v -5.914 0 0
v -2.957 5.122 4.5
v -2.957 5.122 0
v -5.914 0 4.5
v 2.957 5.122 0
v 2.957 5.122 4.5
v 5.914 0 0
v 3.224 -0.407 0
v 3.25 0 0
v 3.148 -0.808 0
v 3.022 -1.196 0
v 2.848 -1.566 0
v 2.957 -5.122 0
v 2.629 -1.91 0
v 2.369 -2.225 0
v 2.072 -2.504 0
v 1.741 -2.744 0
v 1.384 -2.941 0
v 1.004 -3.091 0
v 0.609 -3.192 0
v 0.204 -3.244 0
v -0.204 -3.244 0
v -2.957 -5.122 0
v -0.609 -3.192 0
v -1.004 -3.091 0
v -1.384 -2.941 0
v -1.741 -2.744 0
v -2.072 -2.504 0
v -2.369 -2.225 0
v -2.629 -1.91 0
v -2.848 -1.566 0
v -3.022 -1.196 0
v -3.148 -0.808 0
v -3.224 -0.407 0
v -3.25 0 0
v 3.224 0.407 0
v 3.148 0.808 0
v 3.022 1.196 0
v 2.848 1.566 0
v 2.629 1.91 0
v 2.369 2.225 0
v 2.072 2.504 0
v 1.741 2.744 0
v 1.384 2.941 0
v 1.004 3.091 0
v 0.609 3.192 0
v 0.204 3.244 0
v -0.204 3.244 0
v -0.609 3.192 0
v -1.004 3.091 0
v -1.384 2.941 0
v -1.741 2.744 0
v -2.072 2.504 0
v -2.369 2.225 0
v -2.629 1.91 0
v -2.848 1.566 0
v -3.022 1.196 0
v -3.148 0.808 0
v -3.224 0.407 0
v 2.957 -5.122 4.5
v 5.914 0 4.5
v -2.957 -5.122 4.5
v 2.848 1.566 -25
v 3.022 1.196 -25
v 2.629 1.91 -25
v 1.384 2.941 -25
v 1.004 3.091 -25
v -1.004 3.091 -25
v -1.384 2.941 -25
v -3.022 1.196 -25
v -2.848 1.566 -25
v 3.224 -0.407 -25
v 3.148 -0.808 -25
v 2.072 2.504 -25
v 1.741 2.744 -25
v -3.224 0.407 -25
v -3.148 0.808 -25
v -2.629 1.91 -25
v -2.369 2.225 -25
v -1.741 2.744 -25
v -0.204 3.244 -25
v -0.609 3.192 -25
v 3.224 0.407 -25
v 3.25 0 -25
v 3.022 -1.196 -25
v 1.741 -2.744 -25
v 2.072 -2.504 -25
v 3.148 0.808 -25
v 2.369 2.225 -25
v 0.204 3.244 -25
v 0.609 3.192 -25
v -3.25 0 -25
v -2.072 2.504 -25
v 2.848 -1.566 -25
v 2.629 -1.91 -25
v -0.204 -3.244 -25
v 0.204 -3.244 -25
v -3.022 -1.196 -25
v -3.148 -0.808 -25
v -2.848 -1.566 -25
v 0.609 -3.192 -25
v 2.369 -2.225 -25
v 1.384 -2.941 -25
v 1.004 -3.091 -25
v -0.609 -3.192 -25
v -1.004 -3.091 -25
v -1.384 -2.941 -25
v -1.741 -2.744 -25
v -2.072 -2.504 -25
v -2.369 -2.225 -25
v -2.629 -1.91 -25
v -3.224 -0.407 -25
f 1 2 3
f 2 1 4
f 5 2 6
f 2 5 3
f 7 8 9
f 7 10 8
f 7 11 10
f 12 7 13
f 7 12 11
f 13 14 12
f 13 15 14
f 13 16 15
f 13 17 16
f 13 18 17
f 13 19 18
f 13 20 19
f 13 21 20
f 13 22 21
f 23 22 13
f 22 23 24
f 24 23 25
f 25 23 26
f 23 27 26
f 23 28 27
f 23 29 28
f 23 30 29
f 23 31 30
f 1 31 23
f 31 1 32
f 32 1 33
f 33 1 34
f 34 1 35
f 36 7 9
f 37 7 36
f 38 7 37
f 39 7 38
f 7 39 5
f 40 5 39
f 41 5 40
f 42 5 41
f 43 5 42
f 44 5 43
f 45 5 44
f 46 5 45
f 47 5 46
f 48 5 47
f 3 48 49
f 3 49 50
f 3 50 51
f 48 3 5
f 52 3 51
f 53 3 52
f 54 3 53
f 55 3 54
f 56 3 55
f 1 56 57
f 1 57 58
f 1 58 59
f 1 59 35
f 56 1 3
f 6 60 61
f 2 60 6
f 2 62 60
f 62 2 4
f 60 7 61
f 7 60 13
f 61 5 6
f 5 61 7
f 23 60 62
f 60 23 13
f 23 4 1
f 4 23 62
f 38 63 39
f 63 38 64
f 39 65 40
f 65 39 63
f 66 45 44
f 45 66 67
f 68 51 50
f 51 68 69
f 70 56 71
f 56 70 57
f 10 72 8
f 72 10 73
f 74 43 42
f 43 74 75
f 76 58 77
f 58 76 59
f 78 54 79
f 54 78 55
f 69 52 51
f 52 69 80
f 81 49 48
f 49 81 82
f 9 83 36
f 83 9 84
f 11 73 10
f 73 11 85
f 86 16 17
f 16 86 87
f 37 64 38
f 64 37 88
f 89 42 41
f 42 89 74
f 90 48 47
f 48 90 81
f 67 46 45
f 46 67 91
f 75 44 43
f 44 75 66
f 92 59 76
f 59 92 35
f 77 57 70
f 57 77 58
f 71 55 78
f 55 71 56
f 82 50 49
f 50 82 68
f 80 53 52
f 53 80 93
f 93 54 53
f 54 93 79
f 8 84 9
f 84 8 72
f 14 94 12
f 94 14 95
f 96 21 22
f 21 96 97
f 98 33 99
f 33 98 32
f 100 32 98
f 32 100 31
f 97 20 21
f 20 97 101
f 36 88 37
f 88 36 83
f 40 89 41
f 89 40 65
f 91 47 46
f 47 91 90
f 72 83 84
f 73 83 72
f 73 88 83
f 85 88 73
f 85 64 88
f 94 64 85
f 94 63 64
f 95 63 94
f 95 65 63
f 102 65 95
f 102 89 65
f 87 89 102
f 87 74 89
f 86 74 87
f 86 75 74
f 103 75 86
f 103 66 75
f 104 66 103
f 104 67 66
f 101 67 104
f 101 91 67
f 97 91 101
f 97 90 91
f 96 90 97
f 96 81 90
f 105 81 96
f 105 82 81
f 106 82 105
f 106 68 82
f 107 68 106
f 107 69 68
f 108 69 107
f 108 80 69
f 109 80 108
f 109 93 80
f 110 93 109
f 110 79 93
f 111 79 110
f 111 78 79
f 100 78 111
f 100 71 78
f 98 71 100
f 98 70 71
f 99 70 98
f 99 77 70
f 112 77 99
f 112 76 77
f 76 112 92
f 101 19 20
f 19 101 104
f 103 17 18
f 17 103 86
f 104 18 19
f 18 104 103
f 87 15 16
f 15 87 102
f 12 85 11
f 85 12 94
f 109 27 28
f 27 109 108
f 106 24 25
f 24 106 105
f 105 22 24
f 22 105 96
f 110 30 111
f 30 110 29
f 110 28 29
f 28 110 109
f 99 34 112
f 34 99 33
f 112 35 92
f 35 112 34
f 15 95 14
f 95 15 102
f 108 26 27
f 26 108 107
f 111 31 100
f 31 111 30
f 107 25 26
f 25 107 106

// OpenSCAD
$fn = 50;


difference() {
	union() {
		translate(v = [0, 0, 0]) {
			rotate(a = [0, 0, 0]) {
				translate(v = [0, 0, 0]) {
					rotate(a = [0, 0, 0]) {
						linear_extrude(height = 4.5000000000) {
							polygon(points = [[5.9142500000, 0.0000000000], [2.9571250000, 5.1218907443], [-2.9571250000, 5.1218907443], [-5.9142500000, 0.0000000000], [-2.9571250000, -5.1218907443], [2.9571250000, -5.1218907443]]);
						}
					}
				}
			}
		}
		translate(v = [0, 0, -25]) {
			rotate(a = [0, 0, 0]) {
				cylinder(h = 25, r = 3.2500000000);
			}
		}
	}
	union();
}
